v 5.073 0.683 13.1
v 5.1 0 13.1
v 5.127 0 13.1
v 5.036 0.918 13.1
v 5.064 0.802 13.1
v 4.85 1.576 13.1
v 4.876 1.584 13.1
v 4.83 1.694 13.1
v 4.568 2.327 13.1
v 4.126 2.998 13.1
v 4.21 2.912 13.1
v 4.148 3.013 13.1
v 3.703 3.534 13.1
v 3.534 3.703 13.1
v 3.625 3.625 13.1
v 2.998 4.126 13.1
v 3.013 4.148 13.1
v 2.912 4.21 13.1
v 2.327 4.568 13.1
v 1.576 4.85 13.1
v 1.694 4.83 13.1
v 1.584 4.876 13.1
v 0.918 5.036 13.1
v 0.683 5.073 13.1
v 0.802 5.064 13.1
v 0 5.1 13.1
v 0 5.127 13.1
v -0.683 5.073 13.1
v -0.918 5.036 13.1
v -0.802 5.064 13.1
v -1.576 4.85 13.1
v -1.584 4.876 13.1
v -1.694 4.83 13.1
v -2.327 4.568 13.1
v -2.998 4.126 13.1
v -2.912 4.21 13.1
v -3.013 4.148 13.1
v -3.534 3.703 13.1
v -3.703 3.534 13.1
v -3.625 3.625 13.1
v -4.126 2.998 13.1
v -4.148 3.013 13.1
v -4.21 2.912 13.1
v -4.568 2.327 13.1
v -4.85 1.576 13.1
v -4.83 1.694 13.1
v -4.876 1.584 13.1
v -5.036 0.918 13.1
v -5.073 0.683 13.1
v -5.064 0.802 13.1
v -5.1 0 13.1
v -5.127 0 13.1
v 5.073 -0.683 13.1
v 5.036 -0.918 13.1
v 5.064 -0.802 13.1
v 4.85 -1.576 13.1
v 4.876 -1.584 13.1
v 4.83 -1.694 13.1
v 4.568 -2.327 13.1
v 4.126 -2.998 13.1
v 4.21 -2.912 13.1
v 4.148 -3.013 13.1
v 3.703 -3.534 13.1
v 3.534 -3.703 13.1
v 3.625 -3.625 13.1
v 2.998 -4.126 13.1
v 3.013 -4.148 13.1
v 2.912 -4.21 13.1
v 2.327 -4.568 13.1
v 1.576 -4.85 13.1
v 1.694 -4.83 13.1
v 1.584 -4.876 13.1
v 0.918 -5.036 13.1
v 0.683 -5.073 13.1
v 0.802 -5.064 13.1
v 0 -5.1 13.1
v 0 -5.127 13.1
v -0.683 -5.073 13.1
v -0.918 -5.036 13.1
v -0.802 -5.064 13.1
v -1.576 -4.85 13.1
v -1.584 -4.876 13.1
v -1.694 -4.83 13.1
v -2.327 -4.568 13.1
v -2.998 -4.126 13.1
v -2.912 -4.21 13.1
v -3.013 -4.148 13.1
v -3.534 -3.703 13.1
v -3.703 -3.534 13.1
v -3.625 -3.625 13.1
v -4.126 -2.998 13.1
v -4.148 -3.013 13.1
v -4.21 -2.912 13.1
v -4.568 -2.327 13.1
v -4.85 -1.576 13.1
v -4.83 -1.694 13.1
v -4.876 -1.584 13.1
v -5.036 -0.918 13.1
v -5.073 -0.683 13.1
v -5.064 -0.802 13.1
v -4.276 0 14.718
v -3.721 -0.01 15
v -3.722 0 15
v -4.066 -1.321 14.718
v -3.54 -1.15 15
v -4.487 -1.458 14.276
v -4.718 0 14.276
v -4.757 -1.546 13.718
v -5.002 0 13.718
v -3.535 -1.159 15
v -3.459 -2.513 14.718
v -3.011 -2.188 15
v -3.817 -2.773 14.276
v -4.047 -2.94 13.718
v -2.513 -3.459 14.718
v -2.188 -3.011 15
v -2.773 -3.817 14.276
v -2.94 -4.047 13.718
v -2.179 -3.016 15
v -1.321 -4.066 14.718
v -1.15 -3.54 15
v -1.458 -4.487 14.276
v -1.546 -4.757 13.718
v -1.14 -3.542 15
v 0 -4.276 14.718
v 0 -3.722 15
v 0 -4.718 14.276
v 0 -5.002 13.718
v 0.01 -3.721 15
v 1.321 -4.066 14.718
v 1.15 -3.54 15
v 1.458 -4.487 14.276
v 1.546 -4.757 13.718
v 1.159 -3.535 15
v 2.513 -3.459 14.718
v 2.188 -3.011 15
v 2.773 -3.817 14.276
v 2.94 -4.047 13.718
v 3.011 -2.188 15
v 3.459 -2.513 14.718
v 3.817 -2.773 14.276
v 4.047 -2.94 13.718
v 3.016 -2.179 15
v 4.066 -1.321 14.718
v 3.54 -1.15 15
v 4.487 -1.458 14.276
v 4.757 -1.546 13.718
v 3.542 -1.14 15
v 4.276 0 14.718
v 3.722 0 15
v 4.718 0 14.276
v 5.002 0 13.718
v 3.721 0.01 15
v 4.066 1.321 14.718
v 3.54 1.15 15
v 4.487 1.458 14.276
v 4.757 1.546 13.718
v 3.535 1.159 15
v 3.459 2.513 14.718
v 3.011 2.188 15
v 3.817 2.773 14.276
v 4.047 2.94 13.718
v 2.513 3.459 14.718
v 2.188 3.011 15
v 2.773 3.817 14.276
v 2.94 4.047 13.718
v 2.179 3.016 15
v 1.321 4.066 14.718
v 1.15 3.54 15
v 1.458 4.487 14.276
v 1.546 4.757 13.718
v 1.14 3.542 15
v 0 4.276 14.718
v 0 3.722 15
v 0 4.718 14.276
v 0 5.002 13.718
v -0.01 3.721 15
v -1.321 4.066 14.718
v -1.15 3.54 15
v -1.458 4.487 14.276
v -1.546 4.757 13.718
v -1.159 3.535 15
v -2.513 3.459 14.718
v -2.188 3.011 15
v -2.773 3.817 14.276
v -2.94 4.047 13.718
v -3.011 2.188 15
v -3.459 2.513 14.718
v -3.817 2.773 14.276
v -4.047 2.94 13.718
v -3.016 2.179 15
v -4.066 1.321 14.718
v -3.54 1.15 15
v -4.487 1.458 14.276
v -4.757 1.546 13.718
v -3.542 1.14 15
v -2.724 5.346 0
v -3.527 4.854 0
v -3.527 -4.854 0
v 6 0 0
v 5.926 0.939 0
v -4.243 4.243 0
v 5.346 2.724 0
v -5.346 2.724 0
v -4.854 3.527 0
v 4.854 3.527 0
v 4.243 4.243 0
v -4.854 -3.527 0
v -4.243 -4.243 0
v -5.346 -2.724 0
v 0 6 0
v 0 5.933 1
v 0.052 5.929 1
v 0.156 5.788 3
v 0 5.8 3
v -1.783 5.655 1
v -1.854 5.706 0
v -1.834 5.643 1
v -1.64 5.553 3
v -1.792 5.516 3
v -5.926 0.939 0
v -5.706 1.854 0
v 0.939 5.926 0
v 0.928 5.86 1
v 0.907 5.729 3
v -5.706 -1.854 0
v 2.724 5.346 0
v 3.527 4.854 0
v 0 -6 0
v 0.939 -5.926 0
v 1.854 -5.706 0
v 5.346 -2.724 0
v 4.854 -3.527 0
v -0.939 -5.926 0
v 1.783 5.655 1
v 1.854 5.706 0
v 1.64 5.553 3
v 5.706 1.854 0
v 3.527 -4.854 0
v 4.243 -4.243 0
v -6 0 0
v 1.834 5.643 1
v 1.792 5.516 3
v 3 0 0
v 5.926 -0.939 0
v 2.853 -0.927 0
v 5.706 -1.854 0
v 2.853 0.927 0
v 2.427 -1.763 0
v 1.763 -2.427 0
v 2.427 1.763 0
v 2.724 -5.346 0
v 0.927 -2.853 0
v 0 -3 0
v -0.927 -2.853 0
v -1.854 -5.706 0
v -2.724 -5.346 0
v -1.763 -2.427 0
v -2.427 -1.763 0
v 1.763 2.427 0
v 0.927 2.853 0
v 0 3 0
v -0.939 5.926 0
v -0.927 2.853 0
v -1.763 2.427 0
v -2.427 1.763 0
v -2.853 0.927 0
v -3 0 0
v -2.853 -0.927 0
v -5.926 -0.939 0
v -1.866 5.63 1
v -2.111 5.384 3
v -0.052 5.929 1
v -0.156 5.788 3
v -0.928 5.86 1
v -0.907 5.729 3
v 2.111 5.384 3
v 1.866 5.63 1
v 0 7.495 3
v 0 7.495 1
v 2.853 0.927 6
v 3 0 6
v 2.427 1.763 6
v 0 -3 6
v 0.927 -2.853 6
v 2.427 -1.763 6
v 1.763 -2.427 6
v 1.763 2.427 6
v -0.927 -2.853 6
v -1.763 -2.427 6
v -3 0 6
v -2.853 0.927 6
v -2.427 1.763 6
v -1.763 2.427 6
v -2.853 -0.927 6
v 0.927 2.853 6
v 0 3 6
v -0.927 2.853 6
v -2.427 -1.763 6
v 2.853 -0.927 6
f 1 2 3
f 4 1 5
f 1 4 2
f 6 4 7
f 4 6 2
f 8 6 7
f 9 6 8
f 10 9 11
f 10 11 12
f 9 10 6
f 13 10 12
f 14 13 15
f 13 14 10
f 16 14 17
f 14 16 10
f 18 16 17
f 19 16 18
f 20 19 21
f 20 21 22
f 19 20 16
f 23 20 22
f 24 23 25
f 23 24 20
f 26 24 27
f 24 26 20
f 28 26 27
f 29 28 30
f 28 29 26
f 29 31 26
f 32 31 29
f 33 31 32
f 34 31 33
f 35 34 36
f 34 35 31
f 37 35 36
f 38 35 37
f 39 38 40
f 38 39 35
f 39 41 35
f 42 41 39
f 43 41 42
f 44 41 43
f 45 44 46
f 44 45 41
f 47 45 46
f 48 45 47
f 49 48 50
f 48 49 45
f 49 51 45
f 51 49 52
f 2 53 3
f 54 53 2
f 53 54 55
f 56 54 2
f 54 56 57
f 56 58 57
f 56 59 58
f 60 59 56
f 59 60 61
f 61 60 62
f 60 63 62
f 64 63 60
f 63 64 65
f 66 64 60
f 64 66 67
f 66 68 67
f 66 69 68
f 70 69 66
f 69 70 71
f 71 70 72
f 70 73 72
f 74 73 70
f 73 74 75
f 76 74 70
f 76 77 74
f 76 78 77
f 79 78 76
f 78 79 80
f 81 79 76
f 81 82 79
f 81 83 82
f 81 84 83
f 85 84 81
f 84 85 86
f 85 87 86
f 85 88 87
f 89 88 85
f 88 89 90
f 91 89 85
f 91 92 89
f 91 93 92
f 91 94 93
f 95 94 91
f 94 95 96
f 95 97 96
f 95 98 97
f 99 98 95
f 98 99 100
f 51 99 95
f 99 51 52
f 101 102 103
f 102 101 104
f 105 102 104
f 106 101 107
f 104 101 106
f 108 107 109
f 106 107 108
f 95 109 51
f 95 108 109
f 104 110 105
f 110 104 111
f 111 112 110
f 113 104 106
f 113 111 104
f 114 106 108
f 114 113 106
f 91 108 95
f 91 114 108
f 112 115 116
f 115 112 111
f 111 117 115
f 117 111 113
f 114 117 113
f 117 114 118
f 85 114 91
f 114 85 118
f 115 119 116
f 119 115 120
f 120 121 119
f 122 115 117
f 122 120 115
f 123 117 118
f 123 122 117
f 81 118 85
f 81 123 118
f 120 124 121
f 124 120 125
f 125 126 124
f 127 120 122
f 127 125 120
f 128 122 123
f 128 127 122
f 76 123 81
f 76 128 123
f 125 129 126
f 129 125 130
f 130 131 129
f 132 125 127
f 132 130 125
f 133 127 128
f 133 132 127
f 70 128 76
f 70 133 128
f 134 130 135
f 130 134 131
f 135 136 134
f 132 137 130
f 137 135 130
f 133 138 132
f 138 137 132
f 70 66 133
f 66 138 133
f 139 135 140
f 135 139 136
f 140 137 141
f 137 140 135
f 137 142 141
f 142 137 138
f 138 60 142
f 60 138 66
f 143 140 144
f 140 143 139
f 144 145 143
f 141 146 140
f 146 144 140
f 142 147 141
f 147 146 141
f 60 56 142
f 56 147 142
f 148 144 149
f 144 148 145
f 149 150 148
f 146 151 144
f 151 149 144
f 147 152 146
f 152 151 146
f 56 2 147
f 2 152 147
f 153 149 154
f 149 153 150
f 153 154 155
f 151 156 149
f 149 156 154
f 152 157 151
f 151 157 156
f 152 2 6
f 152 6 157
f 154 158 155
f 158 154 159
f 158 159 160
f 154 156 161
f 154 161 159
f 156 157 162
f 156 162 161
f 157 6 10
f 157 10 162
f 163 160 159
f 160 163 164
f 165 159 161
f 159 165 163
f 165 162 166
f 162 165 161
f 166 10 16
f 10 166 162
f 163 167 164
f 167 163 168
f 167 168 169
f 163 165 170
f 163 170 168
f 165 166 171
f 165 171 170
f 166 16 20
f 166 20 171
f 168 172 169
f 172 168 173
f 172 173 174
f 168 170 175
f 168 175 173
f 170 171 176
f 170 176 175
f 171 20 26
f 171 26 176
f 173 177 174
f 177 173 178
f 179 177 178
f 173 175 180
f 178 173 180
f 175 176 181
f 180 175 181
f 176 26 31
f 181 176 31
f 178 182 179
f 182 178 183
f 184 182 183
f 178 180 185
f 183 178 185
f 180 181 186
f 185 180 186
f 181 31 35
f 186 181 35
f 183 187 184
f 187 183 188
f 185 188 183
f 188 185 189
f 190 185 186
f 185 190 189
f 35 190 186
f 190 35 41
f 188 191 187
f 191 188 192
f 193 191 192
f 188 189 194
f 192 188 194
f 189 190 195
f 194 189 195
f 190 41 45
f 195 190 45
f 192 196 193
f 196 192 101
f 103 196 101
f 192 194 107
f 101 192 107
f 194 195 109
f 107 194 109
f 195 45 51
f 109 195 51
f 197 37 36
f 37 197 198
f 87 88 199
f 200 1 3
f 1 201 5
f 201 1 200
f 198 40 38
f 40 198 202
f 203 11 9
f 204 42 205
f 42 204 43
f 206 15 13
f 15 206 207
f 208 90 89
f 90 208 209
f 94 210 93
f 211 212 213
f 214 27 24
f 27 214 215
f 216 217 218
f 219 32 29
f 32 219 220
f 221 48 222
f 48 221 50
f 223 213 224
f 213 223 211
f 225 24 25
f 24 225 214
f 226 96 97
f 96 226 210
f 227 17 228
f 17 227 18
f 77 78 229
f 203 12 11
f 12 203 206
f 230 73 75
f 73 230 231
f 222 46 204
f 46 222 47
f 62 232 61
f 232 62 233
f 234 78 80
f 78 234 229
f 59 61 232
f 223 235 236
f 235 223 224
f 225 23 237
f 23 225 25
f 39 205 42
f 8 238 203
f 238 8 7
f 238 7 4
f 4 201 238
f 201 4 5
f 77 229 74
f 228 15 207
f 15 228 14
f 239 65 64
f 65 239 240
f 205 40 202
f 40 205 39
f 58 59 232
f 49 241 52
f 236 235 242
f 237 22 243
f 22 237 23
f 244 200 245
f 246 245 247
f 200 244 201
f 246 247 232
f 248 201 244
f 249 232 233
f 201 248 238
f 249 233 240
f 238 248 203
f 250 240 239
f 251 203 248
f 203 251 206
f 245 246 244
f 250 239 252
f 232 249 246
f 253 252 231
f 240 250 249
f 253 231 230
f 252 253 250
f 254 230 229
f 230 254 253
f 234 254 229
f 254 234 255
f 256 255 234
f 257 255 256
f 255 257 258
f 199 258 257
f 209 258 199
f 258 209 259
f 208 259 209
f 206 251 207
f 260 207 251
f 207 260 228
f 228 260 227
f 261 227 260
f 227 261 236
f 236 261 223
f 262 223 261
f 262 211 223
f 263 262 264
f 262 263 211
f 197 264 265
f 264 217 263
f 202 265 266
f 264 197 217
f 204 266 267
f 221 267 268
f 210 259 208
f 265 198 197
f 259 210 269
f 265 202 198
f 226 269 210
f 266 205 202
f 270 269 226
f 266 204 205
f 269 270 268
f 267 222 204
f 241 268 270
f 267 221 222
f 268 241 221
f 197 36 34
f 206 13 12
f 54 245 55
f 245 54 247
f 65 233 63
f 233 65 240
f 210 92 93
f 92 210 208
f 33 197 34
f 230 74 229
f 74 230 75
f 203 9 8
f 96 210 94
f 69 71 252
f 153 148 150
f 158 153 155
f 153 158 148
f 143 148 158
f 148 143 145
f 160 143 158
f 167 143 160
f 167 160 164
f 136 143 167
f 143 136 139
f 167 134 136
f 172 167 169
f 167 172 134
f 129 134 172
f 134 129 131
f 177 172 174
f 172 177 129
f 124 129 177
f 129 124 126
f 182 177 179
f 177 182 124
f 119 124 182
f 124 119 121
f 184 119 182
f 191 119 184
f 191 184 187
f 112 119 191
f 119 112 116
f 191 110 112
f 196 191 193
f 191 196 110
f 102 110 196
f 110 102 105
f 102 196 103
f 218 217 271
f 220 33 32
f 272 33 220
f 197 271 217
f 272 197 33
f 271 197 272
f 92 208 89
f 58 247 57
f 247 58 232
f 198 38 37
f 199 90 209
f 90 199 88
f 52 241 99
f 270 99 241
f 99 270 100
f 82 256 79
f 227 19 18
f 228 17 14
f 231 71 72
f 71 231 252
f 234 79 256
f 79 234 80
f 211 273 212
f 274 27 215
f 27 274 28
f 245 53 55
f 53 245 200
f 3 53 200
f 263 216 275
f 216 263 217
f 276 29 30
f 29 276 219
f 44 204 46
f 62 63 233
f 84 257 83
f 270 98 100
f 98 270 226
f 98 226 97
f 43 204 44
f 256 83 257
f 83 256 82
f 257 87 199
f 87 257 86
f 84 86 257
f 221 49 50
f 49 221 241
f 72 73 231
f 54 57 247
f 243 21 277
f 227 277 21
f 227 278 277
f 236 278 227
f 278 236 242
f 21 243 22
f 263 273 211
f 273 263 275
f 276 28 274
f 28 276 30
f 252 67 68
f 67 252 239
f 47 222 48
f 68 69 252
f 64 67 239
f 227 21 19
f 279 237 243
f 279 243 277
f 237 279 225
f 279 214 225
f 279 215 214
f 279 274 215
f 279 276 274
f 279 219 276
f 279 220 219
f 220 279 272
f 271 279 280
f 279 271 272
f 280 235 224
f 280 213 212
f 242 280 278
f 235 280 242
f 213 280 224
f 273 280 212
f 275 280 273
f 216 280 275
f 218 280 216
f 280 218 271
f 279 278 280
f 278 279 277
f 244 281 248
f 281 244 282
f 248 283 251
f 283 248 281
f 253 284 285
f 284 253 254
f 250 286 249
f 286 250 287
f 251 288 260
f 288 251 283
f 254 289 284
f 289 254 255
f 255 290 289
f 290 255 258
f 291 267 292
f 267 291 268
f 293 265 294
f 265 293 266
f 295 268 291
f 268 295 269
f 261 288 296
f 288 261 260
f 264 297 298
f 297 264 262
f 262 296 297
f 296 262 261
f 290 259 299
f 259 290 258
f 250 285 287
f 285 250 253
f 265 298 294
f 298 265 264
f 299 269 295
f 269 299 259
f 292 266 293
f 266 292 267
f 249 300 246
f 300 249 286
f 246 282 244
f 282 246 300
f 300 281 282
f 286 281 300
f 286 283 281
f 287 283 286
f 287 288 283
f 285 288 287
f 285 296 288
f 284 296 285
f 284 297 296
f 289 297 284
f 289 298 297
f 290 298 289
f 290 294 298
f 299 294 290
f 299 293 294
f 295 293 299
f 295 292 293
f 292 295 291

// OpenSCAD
/*

Parametric Potentiometer Knob Generator
version 1.1
2012 Steve Cooley
http://sc-fa.com
http://beatseqr.com
http://hapticsynapses.com

parametric potentiometer knob generator by steve cooley is licensed under a Creative Commons Attribution-NonCommercial-ShareAlike 3.0 Unported License. Based on a work at sc-fa.com. Permissions beyond the scope of this license may be available at http://sc-fa.com/blog/contact.

view terms of the license here:
http://creativecommons.org/licenses/by-nc-sa/3.0/


version history
---------------
1.1 2012-04-12 fixed the arrow indicator code to be more robust and easier to adjust parameters for.
1.0 2012-03-?? initial release.


*/


//
//
// Physical attributes, basic
//
//

knob_radius_top = 5;
knob_radius_bottom = 6;
knob_height = 15;
knob_smoothness = 40;

shaft_radius = 3.0;
shaft_height = 7;
shaft_smoothness = 20;

shaft_is_flatted = false;
flat_size_adjustment = -0.0;
// you won't need to mess with this. less than 5 makes it disappear. you can, however,
// set the adjustment to be a negative decimal if you need a flat but not as big as the default.
// go positive if you need a bigger flat
flat_size = 5 + flat_size_adjustment;

// some potentiometers need to have their knobs affixed with a set screw.
set_screw = false;
set_screw_radius = 1.5;
set_screw_depth = 9;
set_screw_height = 4;
quality_of_set_screw = 20;

//
//
// Decorations
//
//

//
// top edge smoothing
// thanks to http://www.iheartrobotics.com/ for the articles!
//

smoothing = true;
smoothing_radius = 2;				// tweak on this one, how much smoothing to apply
smooth = 20;						// tweak on this one, Number of facets of rounding cylinder

ct = -0.1; 							// circle translate? not sure.
circle_radius = knob_radius_top;  	// just match the top edge radius
circle_height = 1; 					// actually.. I don't know what this does.
pad = 0.2;							// Padding to maintain manifold


//
// directional indicators
//

// this is a corner edge of a cube sticking out of the cylinder at the bottom
// you can use it instead of the arrow shaped cutout in the top if you like. Or both.

pointy_external_indicator = true;
pointy_external_indicator_height = 2;
pointy_external_indicator_pokey_outey_ness = 0.5; //
pokey_outey_value = pointy_external_indicator_pokey_outey_ness - 1 - pad;
pokey_outey = [pokey_outey_value, pokey_outey_value,1];

// there's an arrow shaped hole you can have. There aren't a lot of controls for this.
// please feel free to improve on this script here.

arrow_indicator = false;
arrow_indicator_scale = 0.4;
arrow_indicator_translate = [0,1,16];
arrow_scale_head = 2;
arrow_scale_shaft = 1.5;

//
// indentations
//

// for spherical indentations, set the quantity, quality, size, and adjust the placement
indentations_sphere = false;
sphere_number_of_indentations = 12;
sphere_quality_of_indentations = 4;
size_of_sphere_indentations = 4;
// the first number in this set moves the spheres in or out. smaller is closer to the middle
// the second number in this set moves the spheres left or right
// the third number in this set moves the speheres up or down
translation_of_sphere_indentations = [10,0,15];
// in case you are using an odd number of indentations, you way want to adjust the starting angle
// so that they align to the front or set screw locations.
sphere_starting_rotation = 90;

// for cylinder indentations, set quantity, quality, radius, height, and placement
indentations_cylinder = false;
cylinder_number_of_indentations = 10;
cylinder_quality_of_indentations = 50;
radius_of_cylinder_indentations_top = 3;
radius_of_cylinder_indentations_bottom = 5;
height_of_cylinder_indentations = 12;
translation_of_cylinder_indentations = [0,8,-8];
cylinder_starting_rotation = -33.3;

// these are some setup variables... you probably won't need to mess with them.
negative_knob_radius = knob_radius_bottom*-1;


// this is the main module. It calls the submodules.
make_the_knob();

module make_the_knob()
{
	difference()
		{
		difference()
			{

			difference()
				{
				difference()
					{

					union()
						{

						difference()
							{
							// main cylinder
							cylinder(r1=knob_radius_bottom,r2=knob_radius_top,h=knob_height, $fn=knob_smoothness);

							smoothing();

							}

						external_direction_indicator();
						}

					shaft_hole();
					}

				set_screw_hole();
				}

			arrow_indicator();
			indentations();
		}
	}

}

module smoothing() {

// smoothing the top
				if(smoothing == true)
					{
						translate([0,0,knob_height])
						rotate([180,0,0])
						difference() {
							rotate_extrude(convexity=10,  $fn = smooth)
							translate([circle_radius-ct-smoothing_radius+pad,ct-pad,0])
							square(smoothing_radius+pad,smoothing_radius+pad);

							rotate_extrude(convexity=10,  $fn = smooth)
							translate([circle_radius-ct-smoothing_radius,ct+smoothing_radius,0])
							circle(r=smoothing_radius,$fn=smooth);
							}
					}
}

module external_direction_indicator() {

				if(pointy_external_indicator == true)
						{


						// outer pointy indicator
						rotate([0,0,45])
						translate(pokey_outey)
						// cube size of 8 minimum to point out
						cube(size=[knob_radius_bottom,knob_radius_bottom,pointy_external_indicator_height],center=false);
						}

}

module shaft_hole() {
				// shaft hole
				difference()
					{

					// round shaft hole
					translate([ 0, 0, -1 ])
					cylinder(r=shaft_radius,h=shaft_height, $fn=shaft_smoothness);

					if(shaft_is_flatted == true)
						{
						// D shaft shape for shaft cutout
						rotate( [0,0,90])
						translate([-7.5,-5,0])
						cube(size=[flat_size,10,13],center=false);
						}
					}
}


module set_screw_hole() {

			if(set_screw == true)
				{
				// set screw hole
				rotate ([90,0,0])
				translate([ 0, set_screw_height, 1 ])
				cylinder(r=set_screw_radius,h=set_screw_depth, $fn=quality_of_set_screw);
				}
}

module arrow_indicator() {
		if(arrow_indicator == true)
			{
			translate(arrow_indicator_translate)
			// begin arrow top cutout
			// translate([(knob_radius/2),knob_height,knob_height])
			rotate([90,0,45])
			scale([arrow_indicator_scale*.3,arrow_indicator_scale*.3,arrow_indicator_scale*.3])
			union()
				{
				rotate([90,45,0])
				scale([arrow_scale_head,arrow_scale_head,1])
				cylinder(r=8, h=10, $fn=3, center=true);
				rotate([90,45,0])
				translate([-10,0,0])
				scale([arrow_scale_shaft,arrow_scale_shaft,1])
				cube(size=[15,10,10],center=true);
				}
			}
}

module indentations() {

if(indentations_sphere == true)
			{
			for (z = [0:sphere_number_of_indentations])
				{
				rotate([0,0,sphere_starting_rotation+((360/sphere_number_of_indentations)*z)])
				translate(translation_of_sphere_indentations)
				sphere(size_of_sphere_indentations, $fn=sphere_quality_of_indentations);
				}
			}
if(indentations_cylinder == true)
			{
			for (z = [0:cylinder_number_of_indentations])
				{
				rotate([0,0,cylinder_starting_rotation+((360/cylinder_number_of_indentations)*z)])

				translate([negative_knob_radius,0,knob_height])
				translate(translation_of_cylinder_indentations)
				cylinder(r1=radius_of_cylinder_indentations_bottom, r2=radius_of_cylinder_indentations_top, h=height_of_cylinder_indentations, center=true, $fn=cylinder_quality_of_indentations);
				}
			}
		}
